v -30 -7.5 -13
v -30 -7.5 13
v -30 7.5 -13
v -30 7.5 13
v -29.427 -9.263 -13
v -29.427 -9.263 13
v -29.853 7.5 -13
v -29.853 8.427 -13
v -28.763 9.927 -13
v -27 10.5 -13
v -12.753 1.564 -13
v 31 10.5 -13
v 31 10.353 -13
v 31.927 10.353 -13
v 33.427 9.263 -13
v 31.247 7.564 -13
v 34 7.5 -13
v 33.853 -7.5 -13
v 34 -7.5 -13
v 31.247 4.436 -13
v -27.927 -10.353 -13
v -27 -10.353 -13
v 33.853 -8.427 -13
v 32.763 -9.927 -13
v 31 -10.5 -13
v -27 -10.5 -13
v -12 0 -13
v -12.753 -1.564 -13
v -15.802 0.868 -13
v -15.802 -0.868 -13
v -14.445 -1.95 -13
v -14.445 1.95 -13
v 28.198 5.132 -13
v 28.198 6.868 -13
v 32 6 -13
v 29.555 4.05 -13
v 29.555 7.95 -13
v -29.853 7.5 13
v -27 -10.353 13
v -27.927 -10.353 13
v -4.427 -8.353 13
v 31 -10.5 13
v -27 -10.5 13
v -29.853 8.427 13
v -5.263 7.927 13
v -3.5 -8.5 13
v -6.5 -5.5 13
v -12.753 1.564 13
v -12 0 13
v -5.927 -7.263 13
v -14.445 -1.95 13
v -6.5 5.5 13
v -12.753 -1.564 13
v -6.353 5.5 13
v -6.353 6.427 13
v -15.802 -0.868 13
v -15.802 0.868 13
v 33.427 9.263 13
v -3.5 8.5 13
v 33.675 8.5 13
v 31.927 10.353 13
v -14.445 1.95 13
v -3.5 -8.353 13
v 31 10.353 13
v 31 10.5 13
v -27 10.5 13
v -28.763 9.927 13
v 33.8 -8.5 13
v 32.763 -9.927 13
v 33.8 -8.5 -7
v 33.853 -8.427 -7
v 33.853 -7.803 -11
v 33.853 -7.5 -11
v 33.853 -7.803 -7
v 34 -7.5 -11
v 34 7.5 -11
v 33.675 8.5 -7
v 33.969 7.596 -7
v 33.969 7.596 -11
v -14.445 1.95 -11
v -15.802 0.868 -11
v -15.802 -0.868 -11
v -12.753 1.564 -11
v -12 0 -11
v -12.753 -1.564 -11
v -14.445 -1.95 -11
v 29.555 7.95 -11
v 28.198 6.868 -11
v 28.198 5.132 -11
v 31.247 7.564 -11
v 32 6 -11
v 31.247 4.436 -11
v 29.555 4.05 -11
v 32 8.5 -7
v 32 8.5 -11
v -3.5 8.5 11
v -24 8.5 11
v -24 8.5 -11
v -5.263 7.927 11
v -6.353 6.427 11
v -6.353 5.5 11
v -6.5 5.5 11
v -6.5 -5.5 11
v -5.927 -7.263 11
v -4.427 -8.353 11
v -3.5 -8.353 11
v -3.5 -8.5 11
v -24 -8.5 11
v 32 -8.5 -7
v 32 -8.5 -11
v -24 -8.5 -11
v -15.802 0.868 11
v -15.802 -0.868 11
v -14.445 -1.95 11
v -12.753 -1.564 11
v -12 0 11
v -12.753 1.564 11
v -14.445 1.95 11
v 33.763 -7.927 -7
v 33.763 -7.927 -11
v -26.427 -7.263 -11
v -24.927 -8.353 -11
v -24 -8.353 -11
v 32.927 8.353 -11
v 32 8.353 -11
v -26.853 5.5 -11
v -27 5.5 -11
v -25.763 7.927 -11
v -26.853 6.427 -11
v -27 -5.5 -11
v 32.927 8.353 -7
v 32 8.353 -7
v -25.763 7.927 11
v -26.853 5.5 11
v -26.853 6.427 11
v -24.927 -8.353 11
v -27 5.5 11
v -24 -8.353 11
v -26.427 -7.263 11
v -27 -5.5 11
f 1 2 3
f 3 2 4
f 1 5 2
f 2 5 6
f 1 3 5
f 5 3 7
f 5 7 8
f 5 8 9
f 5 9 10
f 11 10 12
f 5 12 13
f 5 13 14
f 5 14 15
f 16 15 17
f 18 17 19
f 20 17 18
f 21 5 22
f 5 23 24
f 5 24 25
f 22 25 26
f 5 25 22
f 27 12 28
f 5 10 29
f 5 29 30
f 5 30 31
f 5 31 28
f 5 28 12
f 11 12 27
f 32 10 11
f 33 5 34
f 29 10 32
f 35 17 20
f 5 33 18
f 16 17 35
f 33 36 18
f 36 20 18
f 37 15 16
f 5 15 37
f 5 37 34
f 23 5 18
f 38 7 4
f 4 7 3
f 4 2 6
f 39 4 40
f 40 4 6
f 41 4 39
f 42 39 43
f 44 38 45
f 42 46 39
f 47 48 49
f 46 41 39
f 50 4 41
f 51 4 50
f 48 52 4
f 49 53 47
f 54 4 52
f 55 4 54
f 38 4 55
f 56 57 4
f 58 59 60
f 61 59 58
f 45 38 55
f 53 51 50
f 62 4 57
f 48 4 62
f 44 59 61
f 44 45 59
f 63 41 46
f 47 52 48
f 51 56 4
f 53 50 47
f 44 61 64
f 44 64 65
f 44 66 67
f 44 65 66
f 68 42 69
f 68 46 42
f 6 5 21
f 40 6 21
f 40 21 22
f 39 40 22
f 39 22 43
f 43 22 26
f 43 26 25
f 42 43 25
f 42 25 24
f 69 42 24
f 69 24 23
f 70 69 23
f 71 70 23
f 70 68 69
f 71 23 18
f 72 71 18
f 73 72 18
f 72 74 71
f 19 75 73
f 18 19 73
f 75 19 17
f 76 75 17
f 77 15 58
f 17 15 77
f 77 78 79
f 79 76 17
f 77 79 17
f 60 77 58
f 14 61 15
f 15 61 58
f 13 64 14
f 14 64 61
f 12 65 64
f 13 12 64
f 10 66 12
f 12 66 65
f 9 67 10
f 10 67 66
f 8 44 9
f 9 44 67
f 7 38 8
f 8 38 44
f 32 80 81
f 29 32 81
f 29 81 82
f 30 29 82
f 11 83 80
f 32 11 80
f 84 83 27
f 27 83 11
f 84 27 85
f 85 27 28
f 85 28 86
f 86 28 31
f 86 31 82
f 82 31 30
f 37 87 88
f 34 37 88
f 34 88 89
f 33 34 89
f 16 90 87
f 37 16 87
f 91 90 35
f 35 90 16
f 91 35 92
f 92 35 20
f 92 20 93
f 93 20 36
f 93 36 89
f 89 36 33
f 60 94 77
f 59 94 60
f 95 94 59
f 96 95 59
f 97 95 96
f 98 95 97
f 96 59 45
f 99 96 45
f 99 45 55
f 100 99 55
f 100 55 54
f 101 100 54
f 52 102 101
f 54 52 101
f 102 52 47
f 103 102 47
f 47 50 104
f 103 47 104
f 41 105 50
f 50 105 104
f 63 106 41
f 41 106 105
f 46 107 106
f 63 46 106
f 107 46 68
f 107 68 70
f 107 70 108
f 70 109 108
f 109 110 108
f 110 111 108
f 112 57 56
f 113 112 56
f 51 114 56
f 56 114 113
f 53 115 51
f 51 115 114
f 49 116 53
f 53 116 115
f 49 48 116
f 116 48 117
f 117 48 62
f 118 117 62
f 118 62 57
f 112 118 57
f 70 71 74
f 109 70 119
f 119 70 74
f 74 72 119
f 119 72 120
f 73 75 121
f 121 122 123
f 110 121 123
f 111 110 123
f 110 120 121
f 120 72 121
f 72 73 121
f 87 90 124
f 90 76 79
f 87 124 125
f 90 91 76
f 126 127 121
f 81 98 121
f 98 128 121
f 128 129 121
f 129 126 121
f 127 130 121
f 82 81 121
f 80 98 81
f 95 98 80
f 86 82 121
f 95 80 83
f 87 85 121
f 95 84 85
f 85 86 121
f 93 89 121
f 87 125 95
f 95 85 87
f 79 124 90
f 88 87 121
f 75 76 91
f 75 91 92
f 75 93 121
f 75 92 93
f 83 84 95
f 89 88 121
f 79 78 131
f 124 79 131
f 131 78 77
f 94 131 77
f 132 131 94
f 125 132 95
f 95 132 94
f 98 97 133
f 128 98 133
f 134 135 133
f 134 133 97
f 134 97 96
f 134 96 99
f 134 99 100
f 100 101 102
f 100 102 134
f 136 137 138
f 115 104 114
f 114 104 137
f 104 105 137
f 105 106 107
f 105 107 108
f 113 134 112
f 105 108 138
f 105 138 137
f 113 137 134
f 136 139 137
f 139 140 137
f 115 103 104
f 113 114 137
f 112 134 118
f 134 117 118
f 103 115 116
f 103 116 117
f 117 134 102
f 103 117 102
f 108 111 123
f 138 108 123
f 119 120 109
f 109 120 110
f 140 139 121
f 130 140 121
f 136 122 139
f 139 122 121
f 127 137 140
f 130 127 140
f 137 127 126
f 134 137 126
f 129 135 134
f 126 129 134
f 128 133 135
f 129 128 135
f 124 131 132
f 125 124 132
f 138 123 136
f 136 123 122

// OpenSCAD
// file: inc/functions.scad
// PRUSA iteration3
// Functions used in many files
// GNU GPL v3
// Josef Průša <josefprusa@me.com>
// Václav 'ax' Hůla <axtheb@gmail.com>
// Vlnofka <>
// http://www.reprap.org/wiki/Prusa_Mendel
// http://github.com/prusajr/PrusaMendel

module roundcorner(diameter){
	difference(){
		cube(size = [diameter,diameter,99], center = false);
		translate(v = [diameter, diameter, 0]) cylinder(h = 100, r=diameter, center=true);
	}
}
module nut(d,h,horizontal=true){
    cornerdiameter =  (d / 2) / cos (180 / 6);
    cylinder(h = h, r = cornerdiameter, $fn = 6);
    if(horizontal){
        for(i = [1:6]){
            rotate([0,0,60*i]) translate([-cornerdiameter-0.2,0,0]) rotate([0,0,-45]) cube([2,2,h]);
        }
    }
}

// Based on nophead research
module polyhole(d, h, center=false) {
    n = max(round(2 * d),3);
    rotate([0,0,180])
        cylinder(h = h, r = (d / 2) / cos (180 / n), $fn = n);
}

// make it interchangeable between this and cylinder
module cylinder_poly(r, h, center=false){
    polyhole(d=r*2, h=h, center=center);
}

module fillet(radius, height=100, $fn=0) {
    //this creates acutal fillet
    translate([-radius, -radius, -height/2-0.01])
        difference() {
            cube([radius*2, radius*2, height+0.02]);
            cylinder(r=radius, h=height+0.02, $fn=$fn);
        }
}

module cube_fillet(size, radius=-1, vertical=[3,3,3,3], top=[0,0,0,0], bottom=[0,0,0,0], center=false, $fn=0){
    //
    if (center) {
        cube_fillet_inside(size, radius, vertical, top, bottom, $fn);
    } else {
        translate([size[0]/2, size[1]/2, size[2]/2])
            cube_fillet_inside(size, radius, vertical, top, bottom, $fn);
    }
}

module cube_negative_fillet(size, radius=-1, vertical=[3,3,3,3], top=[0,0,0,0], bottom=[0,0,0,0], $fn=0){

    j=[1,0,1,0];

    for (i=[0:3]) {
        if (radius > -1) {
            rotate([0, 0, 90*i]) translate([size[1-j[i]]/2, size[j[i]]/2, 0]) fillet(radius, size[2], $fn=$fn);
        } else {
            rotate([0, 0, 90*i]) translate([size[1-j[i]]/2, size[j[i]]/2, 0]) fillet(vertical[i], size[2], $fn=$fn);
        }
        rotate([90*i, -90, 0]) translate([size[2]/2, size[j[i]]/2, 0 ]) fillet(top[i], size[1-j[i]], $fn=$fn);
        rotate([90*(4-i), 90, 0]) translate([size[2]/2, size[j[i]]/2, 0]) fillet(bottom[i], size[1-j[i]], $fn=$fn);

    }
}

module cube_fillet_inside(size, radius=-1, vertical=[3,3,3,3], top=[0,0,0,0], bottom=[0,0,0,0], $fn=0){
    //makes CENTERED cube with round corners
    // if you give it radius, it will fillet vertical corners.
    //othervise use vertical, top, bottom arrays
    //when viewed from top, it starts in upper right corner (+x,+y quadrant) , goes counterclockwise
    //top/bottom fillet starts in direction of Y axis and goes CCW too


    if (radius == 0) {
        cube(size, center=true);
    } else {
        difference() {
            cube(size, center=true);
            cube_negative_fillet(size, radius, vertical, top, bottom, $fn);
        }
    }
}


module nema17(places=[1,1,1,1], size=15.5, h=10, holes=false, shadow=false, $fn=24){
    for (i=[0:3]) {
        if (places[i] == 1) {
            rotate([0, 0, 90*i]) translate([size, size, 0]) {
                if (holes) {
                    #rotate([0, 0, -90*i])  translate([0,0,-10]) screw(r=1.7, slant=false, head_drop=13, $fn=$fn, h=h+12);
                } else {
                    rotate([0, 0, -90*i]) cylinder(h=h, r=5.5, $fn=$fn);
                }
            }
        }
    }
    if (shadow != false) {
        %translate ([0, 0, shadow+21+3]) cube([42,42,42], center = true);
    //flange
        %translate ([0, 0, shadow+21+3-21-1]) cylinder(r=11,h=2, center = true, $fn=20);
    //shaft
        %translate ([0, 0, shadow+21+3-21-7]) cylinder(r=2.5,h=14, center = true);
    }
}

module screw(h=20, r=2, r_head=3.5, head_drop=0, slant=true, poly=false, $fn=0){
    //makes screw with head
    //for substraction as screw hole
    if (poly) {
        cylinder_poly(h=h, r=r, $fn=$fn);
    } else {
        cylinder(h=h, r=r, $fn=$fn);
    }
    if (slant) {
        translate([0, 0, head_drop-0.01]) cylinder(h=r_head, r2=0, r1=r_head, $fn=$fn);
    }

    if (head_drop > 0) {
        translate([0, 0, -0.01]) cylinder(h=head_drop+0.01, r=r_head, $fn=$fn);
    }
}
module screw_cylinder(r_head=5.25,r=3.25,head_drop=6.2,slant=false){
	screw(r_head=r_head,head_drop=head_drop,r=r, slant=slant);

}

//screw_cylinder();
//cube_fillet([10,20,30], vertical=[3,2,0,0], top=[3,2,0,5], bottom=[3,2,0,5]);
//cube_fillet([10,20,30], radius=2, top=[7,2,7,2]);
// file: inc/metric.scad
// PRUSA iteration3
// Default metric sizes
// GNU GPL v3
// Josef Průša <josefprusa@me.com>
// http://www.reprap.org/wiki/Prusa_Mendel
// http://github.com/prusajr/PrusaMendel

// DONT CHANGE THIS FILE! ALTER VALUES IN CONFIGURATION.SCAD INSTEAD

// RODS

threaded_rod_diameter = 8.7;
threaded_rod_diameter_horizontal = 8.7;
smooth_bar_diameter = 8;
smooth_bar_diameter_horizontal = 8.8;

// Nuts and bolts

m8_diameter = 9;
m8_nut_diameter = 14.1;

m4_diameter = 4.5;
m4_nut_diameter = 9;

m3_diameter = 3.6;
m3_nut_diameter = 5.3;
m3_nut_diameter_horizontal = 6.1;

// Bushing holder

bushing_core_diameter = smooth_bar_diameter;
bushing_material_thickness = 1;

// Motors

motor_shaft = 5.5;
// file: configuration.scad
// PRUSA iteration3
// Configuration file
// GNU GPL v3
// Josef Průša <josefprusa@me.com>
// Václav 'ax' Hůla <axtheb@gmail.com>
// http://www.reprap.org/wiki/Prusa_Mendel
// http://github.com/prusajr/PrusaMendel

// PLEASE SELECT ONE OF THE CONFIGURATIONS BELOW
// BY UN-COMMENTING IT

// Uncomment for metric settings
// METRIC METRIC METRIC METRIC METRIC METRIC METRIC METRIC 

include <inc/metric.scad>;

// Custom settings here, tailor to your supplies and print settings

// Select your belt type ******************************************************

//T2.5
//belt_tooth_distance = 2.5;
//belt_tooth_ratio = 0.5;

//T5 (strongly discouraged)
belt_tooth_distance = 5;
belt_tooth_ratio = 0.75;

//HTD3
//belt_tooth_distance = 3;
//belt_tooth_ratio = 0.75;

//MXL
//belt_tooth_distance = 2.032;
//belt_tooth_ratio = 0.64;

// Choose bearing/bushing configuration ***************************************

//Choose from:

// 0 = Z as lm[e]8uu, X and Y bushings
// 1 = all bushings
// 2 = all bearings [default. Do not change unless you really know what you are doing]
// DO NOT OFFER 0 or 1 VARIANTS FOR SALE. We really mean that. In the long run it hurts everyone.

bearing_choice = 2;

// Bushing version
// 0 = square igus housings. By igus we mean JFM-0810-10 or GFM-0810-10
// 1 = round igus (works better if printed precisely)
// 2 = bronze self-aligning bushings
bushing_type = 0;

//Bearing version
// 0 = default lm8uu
// 1 = lme8uu
bearing_type = 0;

// Select idler bearing size **************************************************

// 0 = 608 [standard skate bearings]
// 1 = 624 [roughly same diameter as pulley, makes belt parallel so its prettier]

idler_bearing = 0;

// Thickness of the XZ plate board
board_thickness = 12;

//Layer height * width over thickness. Used for idler sleeve
single_wall_width = 0.3*2.2;

// END of custom settings


// You are not supposed to change this
board_to_xz_distance = 26;
xaxis_rod_distance = 45;
carriage_l = 74;
carriage_hole_to_side = 5;
carriage_hole_height = 4;

//calculated from settings

idler_size = (idler_bearing == 0) ? 22 : 13;

//use 4.5 for 608, 2.5 for 624
idler_size_inner_r = (idler_bearing == 0) ? 4.5 : 2.5;

idler_width = (idler_bearing == 0) ? 9 : 5;

// CHANGE ONLY THE STUFF YOU KNOW
// IT WILL REPLACE DEFAULT SETTING

// RODS

// threaded_rod_diameter = 0;
// threaded_rod_diameter_horizontal = 0;
// smooth_bar_diameter = 0;
// smooth_bar_diameter_horizontal = 0;

// Nuts and bolts

// m8_diameter = 0;
// m8_nut_diameter = 0;

// m4_diameter = 0;
// m4_nut_diameter = 0;

// m3_diameter = 0;
// m3_nut_diameter = 0;

// Bushing holder

// bushing_core_diameter = smooth_bar_diameter;
// bushing_material_thickness = 0;

///counted stuff
m3_nut_diameter_bigger = ((m3_nut_diameter  / 2) / cos (180 / 6))*2;

// functions
include <inc/functions.scad>


// These constants define the geometry of the complete-printer.scad

//x_smooth_rod_length=325;
//y_smooth_rod_length=405;
//z_smooth_rod_length=235;
bed_x_size=225;
bed_y_size=225;

x_smooth_rod_length=450+board_thickness*2+10; // 492 for 16mm thickness; 484 for 12mm thickness
y_smooth_rod_length=470;
z_smooth_rod_length=405;  
bed_x_size=225;
bed_y_size=225;
// main file
include <configuration.scad>

x_wire_box();

module x_wire_box(){
	difference(){
		translate([2,0,0])cube_fillet([64,21,26],center=true);
		translate([4,0,0])cube_fillet([62,17,22],center=true);
		translate([22,0,4])cube_fillet([57,17,22],center=true);
		translate([-14,0,-22])cylinder(r=2,h=40);
		translate([30,6,-22])cylinder(r=2,h=30);
	}
}
